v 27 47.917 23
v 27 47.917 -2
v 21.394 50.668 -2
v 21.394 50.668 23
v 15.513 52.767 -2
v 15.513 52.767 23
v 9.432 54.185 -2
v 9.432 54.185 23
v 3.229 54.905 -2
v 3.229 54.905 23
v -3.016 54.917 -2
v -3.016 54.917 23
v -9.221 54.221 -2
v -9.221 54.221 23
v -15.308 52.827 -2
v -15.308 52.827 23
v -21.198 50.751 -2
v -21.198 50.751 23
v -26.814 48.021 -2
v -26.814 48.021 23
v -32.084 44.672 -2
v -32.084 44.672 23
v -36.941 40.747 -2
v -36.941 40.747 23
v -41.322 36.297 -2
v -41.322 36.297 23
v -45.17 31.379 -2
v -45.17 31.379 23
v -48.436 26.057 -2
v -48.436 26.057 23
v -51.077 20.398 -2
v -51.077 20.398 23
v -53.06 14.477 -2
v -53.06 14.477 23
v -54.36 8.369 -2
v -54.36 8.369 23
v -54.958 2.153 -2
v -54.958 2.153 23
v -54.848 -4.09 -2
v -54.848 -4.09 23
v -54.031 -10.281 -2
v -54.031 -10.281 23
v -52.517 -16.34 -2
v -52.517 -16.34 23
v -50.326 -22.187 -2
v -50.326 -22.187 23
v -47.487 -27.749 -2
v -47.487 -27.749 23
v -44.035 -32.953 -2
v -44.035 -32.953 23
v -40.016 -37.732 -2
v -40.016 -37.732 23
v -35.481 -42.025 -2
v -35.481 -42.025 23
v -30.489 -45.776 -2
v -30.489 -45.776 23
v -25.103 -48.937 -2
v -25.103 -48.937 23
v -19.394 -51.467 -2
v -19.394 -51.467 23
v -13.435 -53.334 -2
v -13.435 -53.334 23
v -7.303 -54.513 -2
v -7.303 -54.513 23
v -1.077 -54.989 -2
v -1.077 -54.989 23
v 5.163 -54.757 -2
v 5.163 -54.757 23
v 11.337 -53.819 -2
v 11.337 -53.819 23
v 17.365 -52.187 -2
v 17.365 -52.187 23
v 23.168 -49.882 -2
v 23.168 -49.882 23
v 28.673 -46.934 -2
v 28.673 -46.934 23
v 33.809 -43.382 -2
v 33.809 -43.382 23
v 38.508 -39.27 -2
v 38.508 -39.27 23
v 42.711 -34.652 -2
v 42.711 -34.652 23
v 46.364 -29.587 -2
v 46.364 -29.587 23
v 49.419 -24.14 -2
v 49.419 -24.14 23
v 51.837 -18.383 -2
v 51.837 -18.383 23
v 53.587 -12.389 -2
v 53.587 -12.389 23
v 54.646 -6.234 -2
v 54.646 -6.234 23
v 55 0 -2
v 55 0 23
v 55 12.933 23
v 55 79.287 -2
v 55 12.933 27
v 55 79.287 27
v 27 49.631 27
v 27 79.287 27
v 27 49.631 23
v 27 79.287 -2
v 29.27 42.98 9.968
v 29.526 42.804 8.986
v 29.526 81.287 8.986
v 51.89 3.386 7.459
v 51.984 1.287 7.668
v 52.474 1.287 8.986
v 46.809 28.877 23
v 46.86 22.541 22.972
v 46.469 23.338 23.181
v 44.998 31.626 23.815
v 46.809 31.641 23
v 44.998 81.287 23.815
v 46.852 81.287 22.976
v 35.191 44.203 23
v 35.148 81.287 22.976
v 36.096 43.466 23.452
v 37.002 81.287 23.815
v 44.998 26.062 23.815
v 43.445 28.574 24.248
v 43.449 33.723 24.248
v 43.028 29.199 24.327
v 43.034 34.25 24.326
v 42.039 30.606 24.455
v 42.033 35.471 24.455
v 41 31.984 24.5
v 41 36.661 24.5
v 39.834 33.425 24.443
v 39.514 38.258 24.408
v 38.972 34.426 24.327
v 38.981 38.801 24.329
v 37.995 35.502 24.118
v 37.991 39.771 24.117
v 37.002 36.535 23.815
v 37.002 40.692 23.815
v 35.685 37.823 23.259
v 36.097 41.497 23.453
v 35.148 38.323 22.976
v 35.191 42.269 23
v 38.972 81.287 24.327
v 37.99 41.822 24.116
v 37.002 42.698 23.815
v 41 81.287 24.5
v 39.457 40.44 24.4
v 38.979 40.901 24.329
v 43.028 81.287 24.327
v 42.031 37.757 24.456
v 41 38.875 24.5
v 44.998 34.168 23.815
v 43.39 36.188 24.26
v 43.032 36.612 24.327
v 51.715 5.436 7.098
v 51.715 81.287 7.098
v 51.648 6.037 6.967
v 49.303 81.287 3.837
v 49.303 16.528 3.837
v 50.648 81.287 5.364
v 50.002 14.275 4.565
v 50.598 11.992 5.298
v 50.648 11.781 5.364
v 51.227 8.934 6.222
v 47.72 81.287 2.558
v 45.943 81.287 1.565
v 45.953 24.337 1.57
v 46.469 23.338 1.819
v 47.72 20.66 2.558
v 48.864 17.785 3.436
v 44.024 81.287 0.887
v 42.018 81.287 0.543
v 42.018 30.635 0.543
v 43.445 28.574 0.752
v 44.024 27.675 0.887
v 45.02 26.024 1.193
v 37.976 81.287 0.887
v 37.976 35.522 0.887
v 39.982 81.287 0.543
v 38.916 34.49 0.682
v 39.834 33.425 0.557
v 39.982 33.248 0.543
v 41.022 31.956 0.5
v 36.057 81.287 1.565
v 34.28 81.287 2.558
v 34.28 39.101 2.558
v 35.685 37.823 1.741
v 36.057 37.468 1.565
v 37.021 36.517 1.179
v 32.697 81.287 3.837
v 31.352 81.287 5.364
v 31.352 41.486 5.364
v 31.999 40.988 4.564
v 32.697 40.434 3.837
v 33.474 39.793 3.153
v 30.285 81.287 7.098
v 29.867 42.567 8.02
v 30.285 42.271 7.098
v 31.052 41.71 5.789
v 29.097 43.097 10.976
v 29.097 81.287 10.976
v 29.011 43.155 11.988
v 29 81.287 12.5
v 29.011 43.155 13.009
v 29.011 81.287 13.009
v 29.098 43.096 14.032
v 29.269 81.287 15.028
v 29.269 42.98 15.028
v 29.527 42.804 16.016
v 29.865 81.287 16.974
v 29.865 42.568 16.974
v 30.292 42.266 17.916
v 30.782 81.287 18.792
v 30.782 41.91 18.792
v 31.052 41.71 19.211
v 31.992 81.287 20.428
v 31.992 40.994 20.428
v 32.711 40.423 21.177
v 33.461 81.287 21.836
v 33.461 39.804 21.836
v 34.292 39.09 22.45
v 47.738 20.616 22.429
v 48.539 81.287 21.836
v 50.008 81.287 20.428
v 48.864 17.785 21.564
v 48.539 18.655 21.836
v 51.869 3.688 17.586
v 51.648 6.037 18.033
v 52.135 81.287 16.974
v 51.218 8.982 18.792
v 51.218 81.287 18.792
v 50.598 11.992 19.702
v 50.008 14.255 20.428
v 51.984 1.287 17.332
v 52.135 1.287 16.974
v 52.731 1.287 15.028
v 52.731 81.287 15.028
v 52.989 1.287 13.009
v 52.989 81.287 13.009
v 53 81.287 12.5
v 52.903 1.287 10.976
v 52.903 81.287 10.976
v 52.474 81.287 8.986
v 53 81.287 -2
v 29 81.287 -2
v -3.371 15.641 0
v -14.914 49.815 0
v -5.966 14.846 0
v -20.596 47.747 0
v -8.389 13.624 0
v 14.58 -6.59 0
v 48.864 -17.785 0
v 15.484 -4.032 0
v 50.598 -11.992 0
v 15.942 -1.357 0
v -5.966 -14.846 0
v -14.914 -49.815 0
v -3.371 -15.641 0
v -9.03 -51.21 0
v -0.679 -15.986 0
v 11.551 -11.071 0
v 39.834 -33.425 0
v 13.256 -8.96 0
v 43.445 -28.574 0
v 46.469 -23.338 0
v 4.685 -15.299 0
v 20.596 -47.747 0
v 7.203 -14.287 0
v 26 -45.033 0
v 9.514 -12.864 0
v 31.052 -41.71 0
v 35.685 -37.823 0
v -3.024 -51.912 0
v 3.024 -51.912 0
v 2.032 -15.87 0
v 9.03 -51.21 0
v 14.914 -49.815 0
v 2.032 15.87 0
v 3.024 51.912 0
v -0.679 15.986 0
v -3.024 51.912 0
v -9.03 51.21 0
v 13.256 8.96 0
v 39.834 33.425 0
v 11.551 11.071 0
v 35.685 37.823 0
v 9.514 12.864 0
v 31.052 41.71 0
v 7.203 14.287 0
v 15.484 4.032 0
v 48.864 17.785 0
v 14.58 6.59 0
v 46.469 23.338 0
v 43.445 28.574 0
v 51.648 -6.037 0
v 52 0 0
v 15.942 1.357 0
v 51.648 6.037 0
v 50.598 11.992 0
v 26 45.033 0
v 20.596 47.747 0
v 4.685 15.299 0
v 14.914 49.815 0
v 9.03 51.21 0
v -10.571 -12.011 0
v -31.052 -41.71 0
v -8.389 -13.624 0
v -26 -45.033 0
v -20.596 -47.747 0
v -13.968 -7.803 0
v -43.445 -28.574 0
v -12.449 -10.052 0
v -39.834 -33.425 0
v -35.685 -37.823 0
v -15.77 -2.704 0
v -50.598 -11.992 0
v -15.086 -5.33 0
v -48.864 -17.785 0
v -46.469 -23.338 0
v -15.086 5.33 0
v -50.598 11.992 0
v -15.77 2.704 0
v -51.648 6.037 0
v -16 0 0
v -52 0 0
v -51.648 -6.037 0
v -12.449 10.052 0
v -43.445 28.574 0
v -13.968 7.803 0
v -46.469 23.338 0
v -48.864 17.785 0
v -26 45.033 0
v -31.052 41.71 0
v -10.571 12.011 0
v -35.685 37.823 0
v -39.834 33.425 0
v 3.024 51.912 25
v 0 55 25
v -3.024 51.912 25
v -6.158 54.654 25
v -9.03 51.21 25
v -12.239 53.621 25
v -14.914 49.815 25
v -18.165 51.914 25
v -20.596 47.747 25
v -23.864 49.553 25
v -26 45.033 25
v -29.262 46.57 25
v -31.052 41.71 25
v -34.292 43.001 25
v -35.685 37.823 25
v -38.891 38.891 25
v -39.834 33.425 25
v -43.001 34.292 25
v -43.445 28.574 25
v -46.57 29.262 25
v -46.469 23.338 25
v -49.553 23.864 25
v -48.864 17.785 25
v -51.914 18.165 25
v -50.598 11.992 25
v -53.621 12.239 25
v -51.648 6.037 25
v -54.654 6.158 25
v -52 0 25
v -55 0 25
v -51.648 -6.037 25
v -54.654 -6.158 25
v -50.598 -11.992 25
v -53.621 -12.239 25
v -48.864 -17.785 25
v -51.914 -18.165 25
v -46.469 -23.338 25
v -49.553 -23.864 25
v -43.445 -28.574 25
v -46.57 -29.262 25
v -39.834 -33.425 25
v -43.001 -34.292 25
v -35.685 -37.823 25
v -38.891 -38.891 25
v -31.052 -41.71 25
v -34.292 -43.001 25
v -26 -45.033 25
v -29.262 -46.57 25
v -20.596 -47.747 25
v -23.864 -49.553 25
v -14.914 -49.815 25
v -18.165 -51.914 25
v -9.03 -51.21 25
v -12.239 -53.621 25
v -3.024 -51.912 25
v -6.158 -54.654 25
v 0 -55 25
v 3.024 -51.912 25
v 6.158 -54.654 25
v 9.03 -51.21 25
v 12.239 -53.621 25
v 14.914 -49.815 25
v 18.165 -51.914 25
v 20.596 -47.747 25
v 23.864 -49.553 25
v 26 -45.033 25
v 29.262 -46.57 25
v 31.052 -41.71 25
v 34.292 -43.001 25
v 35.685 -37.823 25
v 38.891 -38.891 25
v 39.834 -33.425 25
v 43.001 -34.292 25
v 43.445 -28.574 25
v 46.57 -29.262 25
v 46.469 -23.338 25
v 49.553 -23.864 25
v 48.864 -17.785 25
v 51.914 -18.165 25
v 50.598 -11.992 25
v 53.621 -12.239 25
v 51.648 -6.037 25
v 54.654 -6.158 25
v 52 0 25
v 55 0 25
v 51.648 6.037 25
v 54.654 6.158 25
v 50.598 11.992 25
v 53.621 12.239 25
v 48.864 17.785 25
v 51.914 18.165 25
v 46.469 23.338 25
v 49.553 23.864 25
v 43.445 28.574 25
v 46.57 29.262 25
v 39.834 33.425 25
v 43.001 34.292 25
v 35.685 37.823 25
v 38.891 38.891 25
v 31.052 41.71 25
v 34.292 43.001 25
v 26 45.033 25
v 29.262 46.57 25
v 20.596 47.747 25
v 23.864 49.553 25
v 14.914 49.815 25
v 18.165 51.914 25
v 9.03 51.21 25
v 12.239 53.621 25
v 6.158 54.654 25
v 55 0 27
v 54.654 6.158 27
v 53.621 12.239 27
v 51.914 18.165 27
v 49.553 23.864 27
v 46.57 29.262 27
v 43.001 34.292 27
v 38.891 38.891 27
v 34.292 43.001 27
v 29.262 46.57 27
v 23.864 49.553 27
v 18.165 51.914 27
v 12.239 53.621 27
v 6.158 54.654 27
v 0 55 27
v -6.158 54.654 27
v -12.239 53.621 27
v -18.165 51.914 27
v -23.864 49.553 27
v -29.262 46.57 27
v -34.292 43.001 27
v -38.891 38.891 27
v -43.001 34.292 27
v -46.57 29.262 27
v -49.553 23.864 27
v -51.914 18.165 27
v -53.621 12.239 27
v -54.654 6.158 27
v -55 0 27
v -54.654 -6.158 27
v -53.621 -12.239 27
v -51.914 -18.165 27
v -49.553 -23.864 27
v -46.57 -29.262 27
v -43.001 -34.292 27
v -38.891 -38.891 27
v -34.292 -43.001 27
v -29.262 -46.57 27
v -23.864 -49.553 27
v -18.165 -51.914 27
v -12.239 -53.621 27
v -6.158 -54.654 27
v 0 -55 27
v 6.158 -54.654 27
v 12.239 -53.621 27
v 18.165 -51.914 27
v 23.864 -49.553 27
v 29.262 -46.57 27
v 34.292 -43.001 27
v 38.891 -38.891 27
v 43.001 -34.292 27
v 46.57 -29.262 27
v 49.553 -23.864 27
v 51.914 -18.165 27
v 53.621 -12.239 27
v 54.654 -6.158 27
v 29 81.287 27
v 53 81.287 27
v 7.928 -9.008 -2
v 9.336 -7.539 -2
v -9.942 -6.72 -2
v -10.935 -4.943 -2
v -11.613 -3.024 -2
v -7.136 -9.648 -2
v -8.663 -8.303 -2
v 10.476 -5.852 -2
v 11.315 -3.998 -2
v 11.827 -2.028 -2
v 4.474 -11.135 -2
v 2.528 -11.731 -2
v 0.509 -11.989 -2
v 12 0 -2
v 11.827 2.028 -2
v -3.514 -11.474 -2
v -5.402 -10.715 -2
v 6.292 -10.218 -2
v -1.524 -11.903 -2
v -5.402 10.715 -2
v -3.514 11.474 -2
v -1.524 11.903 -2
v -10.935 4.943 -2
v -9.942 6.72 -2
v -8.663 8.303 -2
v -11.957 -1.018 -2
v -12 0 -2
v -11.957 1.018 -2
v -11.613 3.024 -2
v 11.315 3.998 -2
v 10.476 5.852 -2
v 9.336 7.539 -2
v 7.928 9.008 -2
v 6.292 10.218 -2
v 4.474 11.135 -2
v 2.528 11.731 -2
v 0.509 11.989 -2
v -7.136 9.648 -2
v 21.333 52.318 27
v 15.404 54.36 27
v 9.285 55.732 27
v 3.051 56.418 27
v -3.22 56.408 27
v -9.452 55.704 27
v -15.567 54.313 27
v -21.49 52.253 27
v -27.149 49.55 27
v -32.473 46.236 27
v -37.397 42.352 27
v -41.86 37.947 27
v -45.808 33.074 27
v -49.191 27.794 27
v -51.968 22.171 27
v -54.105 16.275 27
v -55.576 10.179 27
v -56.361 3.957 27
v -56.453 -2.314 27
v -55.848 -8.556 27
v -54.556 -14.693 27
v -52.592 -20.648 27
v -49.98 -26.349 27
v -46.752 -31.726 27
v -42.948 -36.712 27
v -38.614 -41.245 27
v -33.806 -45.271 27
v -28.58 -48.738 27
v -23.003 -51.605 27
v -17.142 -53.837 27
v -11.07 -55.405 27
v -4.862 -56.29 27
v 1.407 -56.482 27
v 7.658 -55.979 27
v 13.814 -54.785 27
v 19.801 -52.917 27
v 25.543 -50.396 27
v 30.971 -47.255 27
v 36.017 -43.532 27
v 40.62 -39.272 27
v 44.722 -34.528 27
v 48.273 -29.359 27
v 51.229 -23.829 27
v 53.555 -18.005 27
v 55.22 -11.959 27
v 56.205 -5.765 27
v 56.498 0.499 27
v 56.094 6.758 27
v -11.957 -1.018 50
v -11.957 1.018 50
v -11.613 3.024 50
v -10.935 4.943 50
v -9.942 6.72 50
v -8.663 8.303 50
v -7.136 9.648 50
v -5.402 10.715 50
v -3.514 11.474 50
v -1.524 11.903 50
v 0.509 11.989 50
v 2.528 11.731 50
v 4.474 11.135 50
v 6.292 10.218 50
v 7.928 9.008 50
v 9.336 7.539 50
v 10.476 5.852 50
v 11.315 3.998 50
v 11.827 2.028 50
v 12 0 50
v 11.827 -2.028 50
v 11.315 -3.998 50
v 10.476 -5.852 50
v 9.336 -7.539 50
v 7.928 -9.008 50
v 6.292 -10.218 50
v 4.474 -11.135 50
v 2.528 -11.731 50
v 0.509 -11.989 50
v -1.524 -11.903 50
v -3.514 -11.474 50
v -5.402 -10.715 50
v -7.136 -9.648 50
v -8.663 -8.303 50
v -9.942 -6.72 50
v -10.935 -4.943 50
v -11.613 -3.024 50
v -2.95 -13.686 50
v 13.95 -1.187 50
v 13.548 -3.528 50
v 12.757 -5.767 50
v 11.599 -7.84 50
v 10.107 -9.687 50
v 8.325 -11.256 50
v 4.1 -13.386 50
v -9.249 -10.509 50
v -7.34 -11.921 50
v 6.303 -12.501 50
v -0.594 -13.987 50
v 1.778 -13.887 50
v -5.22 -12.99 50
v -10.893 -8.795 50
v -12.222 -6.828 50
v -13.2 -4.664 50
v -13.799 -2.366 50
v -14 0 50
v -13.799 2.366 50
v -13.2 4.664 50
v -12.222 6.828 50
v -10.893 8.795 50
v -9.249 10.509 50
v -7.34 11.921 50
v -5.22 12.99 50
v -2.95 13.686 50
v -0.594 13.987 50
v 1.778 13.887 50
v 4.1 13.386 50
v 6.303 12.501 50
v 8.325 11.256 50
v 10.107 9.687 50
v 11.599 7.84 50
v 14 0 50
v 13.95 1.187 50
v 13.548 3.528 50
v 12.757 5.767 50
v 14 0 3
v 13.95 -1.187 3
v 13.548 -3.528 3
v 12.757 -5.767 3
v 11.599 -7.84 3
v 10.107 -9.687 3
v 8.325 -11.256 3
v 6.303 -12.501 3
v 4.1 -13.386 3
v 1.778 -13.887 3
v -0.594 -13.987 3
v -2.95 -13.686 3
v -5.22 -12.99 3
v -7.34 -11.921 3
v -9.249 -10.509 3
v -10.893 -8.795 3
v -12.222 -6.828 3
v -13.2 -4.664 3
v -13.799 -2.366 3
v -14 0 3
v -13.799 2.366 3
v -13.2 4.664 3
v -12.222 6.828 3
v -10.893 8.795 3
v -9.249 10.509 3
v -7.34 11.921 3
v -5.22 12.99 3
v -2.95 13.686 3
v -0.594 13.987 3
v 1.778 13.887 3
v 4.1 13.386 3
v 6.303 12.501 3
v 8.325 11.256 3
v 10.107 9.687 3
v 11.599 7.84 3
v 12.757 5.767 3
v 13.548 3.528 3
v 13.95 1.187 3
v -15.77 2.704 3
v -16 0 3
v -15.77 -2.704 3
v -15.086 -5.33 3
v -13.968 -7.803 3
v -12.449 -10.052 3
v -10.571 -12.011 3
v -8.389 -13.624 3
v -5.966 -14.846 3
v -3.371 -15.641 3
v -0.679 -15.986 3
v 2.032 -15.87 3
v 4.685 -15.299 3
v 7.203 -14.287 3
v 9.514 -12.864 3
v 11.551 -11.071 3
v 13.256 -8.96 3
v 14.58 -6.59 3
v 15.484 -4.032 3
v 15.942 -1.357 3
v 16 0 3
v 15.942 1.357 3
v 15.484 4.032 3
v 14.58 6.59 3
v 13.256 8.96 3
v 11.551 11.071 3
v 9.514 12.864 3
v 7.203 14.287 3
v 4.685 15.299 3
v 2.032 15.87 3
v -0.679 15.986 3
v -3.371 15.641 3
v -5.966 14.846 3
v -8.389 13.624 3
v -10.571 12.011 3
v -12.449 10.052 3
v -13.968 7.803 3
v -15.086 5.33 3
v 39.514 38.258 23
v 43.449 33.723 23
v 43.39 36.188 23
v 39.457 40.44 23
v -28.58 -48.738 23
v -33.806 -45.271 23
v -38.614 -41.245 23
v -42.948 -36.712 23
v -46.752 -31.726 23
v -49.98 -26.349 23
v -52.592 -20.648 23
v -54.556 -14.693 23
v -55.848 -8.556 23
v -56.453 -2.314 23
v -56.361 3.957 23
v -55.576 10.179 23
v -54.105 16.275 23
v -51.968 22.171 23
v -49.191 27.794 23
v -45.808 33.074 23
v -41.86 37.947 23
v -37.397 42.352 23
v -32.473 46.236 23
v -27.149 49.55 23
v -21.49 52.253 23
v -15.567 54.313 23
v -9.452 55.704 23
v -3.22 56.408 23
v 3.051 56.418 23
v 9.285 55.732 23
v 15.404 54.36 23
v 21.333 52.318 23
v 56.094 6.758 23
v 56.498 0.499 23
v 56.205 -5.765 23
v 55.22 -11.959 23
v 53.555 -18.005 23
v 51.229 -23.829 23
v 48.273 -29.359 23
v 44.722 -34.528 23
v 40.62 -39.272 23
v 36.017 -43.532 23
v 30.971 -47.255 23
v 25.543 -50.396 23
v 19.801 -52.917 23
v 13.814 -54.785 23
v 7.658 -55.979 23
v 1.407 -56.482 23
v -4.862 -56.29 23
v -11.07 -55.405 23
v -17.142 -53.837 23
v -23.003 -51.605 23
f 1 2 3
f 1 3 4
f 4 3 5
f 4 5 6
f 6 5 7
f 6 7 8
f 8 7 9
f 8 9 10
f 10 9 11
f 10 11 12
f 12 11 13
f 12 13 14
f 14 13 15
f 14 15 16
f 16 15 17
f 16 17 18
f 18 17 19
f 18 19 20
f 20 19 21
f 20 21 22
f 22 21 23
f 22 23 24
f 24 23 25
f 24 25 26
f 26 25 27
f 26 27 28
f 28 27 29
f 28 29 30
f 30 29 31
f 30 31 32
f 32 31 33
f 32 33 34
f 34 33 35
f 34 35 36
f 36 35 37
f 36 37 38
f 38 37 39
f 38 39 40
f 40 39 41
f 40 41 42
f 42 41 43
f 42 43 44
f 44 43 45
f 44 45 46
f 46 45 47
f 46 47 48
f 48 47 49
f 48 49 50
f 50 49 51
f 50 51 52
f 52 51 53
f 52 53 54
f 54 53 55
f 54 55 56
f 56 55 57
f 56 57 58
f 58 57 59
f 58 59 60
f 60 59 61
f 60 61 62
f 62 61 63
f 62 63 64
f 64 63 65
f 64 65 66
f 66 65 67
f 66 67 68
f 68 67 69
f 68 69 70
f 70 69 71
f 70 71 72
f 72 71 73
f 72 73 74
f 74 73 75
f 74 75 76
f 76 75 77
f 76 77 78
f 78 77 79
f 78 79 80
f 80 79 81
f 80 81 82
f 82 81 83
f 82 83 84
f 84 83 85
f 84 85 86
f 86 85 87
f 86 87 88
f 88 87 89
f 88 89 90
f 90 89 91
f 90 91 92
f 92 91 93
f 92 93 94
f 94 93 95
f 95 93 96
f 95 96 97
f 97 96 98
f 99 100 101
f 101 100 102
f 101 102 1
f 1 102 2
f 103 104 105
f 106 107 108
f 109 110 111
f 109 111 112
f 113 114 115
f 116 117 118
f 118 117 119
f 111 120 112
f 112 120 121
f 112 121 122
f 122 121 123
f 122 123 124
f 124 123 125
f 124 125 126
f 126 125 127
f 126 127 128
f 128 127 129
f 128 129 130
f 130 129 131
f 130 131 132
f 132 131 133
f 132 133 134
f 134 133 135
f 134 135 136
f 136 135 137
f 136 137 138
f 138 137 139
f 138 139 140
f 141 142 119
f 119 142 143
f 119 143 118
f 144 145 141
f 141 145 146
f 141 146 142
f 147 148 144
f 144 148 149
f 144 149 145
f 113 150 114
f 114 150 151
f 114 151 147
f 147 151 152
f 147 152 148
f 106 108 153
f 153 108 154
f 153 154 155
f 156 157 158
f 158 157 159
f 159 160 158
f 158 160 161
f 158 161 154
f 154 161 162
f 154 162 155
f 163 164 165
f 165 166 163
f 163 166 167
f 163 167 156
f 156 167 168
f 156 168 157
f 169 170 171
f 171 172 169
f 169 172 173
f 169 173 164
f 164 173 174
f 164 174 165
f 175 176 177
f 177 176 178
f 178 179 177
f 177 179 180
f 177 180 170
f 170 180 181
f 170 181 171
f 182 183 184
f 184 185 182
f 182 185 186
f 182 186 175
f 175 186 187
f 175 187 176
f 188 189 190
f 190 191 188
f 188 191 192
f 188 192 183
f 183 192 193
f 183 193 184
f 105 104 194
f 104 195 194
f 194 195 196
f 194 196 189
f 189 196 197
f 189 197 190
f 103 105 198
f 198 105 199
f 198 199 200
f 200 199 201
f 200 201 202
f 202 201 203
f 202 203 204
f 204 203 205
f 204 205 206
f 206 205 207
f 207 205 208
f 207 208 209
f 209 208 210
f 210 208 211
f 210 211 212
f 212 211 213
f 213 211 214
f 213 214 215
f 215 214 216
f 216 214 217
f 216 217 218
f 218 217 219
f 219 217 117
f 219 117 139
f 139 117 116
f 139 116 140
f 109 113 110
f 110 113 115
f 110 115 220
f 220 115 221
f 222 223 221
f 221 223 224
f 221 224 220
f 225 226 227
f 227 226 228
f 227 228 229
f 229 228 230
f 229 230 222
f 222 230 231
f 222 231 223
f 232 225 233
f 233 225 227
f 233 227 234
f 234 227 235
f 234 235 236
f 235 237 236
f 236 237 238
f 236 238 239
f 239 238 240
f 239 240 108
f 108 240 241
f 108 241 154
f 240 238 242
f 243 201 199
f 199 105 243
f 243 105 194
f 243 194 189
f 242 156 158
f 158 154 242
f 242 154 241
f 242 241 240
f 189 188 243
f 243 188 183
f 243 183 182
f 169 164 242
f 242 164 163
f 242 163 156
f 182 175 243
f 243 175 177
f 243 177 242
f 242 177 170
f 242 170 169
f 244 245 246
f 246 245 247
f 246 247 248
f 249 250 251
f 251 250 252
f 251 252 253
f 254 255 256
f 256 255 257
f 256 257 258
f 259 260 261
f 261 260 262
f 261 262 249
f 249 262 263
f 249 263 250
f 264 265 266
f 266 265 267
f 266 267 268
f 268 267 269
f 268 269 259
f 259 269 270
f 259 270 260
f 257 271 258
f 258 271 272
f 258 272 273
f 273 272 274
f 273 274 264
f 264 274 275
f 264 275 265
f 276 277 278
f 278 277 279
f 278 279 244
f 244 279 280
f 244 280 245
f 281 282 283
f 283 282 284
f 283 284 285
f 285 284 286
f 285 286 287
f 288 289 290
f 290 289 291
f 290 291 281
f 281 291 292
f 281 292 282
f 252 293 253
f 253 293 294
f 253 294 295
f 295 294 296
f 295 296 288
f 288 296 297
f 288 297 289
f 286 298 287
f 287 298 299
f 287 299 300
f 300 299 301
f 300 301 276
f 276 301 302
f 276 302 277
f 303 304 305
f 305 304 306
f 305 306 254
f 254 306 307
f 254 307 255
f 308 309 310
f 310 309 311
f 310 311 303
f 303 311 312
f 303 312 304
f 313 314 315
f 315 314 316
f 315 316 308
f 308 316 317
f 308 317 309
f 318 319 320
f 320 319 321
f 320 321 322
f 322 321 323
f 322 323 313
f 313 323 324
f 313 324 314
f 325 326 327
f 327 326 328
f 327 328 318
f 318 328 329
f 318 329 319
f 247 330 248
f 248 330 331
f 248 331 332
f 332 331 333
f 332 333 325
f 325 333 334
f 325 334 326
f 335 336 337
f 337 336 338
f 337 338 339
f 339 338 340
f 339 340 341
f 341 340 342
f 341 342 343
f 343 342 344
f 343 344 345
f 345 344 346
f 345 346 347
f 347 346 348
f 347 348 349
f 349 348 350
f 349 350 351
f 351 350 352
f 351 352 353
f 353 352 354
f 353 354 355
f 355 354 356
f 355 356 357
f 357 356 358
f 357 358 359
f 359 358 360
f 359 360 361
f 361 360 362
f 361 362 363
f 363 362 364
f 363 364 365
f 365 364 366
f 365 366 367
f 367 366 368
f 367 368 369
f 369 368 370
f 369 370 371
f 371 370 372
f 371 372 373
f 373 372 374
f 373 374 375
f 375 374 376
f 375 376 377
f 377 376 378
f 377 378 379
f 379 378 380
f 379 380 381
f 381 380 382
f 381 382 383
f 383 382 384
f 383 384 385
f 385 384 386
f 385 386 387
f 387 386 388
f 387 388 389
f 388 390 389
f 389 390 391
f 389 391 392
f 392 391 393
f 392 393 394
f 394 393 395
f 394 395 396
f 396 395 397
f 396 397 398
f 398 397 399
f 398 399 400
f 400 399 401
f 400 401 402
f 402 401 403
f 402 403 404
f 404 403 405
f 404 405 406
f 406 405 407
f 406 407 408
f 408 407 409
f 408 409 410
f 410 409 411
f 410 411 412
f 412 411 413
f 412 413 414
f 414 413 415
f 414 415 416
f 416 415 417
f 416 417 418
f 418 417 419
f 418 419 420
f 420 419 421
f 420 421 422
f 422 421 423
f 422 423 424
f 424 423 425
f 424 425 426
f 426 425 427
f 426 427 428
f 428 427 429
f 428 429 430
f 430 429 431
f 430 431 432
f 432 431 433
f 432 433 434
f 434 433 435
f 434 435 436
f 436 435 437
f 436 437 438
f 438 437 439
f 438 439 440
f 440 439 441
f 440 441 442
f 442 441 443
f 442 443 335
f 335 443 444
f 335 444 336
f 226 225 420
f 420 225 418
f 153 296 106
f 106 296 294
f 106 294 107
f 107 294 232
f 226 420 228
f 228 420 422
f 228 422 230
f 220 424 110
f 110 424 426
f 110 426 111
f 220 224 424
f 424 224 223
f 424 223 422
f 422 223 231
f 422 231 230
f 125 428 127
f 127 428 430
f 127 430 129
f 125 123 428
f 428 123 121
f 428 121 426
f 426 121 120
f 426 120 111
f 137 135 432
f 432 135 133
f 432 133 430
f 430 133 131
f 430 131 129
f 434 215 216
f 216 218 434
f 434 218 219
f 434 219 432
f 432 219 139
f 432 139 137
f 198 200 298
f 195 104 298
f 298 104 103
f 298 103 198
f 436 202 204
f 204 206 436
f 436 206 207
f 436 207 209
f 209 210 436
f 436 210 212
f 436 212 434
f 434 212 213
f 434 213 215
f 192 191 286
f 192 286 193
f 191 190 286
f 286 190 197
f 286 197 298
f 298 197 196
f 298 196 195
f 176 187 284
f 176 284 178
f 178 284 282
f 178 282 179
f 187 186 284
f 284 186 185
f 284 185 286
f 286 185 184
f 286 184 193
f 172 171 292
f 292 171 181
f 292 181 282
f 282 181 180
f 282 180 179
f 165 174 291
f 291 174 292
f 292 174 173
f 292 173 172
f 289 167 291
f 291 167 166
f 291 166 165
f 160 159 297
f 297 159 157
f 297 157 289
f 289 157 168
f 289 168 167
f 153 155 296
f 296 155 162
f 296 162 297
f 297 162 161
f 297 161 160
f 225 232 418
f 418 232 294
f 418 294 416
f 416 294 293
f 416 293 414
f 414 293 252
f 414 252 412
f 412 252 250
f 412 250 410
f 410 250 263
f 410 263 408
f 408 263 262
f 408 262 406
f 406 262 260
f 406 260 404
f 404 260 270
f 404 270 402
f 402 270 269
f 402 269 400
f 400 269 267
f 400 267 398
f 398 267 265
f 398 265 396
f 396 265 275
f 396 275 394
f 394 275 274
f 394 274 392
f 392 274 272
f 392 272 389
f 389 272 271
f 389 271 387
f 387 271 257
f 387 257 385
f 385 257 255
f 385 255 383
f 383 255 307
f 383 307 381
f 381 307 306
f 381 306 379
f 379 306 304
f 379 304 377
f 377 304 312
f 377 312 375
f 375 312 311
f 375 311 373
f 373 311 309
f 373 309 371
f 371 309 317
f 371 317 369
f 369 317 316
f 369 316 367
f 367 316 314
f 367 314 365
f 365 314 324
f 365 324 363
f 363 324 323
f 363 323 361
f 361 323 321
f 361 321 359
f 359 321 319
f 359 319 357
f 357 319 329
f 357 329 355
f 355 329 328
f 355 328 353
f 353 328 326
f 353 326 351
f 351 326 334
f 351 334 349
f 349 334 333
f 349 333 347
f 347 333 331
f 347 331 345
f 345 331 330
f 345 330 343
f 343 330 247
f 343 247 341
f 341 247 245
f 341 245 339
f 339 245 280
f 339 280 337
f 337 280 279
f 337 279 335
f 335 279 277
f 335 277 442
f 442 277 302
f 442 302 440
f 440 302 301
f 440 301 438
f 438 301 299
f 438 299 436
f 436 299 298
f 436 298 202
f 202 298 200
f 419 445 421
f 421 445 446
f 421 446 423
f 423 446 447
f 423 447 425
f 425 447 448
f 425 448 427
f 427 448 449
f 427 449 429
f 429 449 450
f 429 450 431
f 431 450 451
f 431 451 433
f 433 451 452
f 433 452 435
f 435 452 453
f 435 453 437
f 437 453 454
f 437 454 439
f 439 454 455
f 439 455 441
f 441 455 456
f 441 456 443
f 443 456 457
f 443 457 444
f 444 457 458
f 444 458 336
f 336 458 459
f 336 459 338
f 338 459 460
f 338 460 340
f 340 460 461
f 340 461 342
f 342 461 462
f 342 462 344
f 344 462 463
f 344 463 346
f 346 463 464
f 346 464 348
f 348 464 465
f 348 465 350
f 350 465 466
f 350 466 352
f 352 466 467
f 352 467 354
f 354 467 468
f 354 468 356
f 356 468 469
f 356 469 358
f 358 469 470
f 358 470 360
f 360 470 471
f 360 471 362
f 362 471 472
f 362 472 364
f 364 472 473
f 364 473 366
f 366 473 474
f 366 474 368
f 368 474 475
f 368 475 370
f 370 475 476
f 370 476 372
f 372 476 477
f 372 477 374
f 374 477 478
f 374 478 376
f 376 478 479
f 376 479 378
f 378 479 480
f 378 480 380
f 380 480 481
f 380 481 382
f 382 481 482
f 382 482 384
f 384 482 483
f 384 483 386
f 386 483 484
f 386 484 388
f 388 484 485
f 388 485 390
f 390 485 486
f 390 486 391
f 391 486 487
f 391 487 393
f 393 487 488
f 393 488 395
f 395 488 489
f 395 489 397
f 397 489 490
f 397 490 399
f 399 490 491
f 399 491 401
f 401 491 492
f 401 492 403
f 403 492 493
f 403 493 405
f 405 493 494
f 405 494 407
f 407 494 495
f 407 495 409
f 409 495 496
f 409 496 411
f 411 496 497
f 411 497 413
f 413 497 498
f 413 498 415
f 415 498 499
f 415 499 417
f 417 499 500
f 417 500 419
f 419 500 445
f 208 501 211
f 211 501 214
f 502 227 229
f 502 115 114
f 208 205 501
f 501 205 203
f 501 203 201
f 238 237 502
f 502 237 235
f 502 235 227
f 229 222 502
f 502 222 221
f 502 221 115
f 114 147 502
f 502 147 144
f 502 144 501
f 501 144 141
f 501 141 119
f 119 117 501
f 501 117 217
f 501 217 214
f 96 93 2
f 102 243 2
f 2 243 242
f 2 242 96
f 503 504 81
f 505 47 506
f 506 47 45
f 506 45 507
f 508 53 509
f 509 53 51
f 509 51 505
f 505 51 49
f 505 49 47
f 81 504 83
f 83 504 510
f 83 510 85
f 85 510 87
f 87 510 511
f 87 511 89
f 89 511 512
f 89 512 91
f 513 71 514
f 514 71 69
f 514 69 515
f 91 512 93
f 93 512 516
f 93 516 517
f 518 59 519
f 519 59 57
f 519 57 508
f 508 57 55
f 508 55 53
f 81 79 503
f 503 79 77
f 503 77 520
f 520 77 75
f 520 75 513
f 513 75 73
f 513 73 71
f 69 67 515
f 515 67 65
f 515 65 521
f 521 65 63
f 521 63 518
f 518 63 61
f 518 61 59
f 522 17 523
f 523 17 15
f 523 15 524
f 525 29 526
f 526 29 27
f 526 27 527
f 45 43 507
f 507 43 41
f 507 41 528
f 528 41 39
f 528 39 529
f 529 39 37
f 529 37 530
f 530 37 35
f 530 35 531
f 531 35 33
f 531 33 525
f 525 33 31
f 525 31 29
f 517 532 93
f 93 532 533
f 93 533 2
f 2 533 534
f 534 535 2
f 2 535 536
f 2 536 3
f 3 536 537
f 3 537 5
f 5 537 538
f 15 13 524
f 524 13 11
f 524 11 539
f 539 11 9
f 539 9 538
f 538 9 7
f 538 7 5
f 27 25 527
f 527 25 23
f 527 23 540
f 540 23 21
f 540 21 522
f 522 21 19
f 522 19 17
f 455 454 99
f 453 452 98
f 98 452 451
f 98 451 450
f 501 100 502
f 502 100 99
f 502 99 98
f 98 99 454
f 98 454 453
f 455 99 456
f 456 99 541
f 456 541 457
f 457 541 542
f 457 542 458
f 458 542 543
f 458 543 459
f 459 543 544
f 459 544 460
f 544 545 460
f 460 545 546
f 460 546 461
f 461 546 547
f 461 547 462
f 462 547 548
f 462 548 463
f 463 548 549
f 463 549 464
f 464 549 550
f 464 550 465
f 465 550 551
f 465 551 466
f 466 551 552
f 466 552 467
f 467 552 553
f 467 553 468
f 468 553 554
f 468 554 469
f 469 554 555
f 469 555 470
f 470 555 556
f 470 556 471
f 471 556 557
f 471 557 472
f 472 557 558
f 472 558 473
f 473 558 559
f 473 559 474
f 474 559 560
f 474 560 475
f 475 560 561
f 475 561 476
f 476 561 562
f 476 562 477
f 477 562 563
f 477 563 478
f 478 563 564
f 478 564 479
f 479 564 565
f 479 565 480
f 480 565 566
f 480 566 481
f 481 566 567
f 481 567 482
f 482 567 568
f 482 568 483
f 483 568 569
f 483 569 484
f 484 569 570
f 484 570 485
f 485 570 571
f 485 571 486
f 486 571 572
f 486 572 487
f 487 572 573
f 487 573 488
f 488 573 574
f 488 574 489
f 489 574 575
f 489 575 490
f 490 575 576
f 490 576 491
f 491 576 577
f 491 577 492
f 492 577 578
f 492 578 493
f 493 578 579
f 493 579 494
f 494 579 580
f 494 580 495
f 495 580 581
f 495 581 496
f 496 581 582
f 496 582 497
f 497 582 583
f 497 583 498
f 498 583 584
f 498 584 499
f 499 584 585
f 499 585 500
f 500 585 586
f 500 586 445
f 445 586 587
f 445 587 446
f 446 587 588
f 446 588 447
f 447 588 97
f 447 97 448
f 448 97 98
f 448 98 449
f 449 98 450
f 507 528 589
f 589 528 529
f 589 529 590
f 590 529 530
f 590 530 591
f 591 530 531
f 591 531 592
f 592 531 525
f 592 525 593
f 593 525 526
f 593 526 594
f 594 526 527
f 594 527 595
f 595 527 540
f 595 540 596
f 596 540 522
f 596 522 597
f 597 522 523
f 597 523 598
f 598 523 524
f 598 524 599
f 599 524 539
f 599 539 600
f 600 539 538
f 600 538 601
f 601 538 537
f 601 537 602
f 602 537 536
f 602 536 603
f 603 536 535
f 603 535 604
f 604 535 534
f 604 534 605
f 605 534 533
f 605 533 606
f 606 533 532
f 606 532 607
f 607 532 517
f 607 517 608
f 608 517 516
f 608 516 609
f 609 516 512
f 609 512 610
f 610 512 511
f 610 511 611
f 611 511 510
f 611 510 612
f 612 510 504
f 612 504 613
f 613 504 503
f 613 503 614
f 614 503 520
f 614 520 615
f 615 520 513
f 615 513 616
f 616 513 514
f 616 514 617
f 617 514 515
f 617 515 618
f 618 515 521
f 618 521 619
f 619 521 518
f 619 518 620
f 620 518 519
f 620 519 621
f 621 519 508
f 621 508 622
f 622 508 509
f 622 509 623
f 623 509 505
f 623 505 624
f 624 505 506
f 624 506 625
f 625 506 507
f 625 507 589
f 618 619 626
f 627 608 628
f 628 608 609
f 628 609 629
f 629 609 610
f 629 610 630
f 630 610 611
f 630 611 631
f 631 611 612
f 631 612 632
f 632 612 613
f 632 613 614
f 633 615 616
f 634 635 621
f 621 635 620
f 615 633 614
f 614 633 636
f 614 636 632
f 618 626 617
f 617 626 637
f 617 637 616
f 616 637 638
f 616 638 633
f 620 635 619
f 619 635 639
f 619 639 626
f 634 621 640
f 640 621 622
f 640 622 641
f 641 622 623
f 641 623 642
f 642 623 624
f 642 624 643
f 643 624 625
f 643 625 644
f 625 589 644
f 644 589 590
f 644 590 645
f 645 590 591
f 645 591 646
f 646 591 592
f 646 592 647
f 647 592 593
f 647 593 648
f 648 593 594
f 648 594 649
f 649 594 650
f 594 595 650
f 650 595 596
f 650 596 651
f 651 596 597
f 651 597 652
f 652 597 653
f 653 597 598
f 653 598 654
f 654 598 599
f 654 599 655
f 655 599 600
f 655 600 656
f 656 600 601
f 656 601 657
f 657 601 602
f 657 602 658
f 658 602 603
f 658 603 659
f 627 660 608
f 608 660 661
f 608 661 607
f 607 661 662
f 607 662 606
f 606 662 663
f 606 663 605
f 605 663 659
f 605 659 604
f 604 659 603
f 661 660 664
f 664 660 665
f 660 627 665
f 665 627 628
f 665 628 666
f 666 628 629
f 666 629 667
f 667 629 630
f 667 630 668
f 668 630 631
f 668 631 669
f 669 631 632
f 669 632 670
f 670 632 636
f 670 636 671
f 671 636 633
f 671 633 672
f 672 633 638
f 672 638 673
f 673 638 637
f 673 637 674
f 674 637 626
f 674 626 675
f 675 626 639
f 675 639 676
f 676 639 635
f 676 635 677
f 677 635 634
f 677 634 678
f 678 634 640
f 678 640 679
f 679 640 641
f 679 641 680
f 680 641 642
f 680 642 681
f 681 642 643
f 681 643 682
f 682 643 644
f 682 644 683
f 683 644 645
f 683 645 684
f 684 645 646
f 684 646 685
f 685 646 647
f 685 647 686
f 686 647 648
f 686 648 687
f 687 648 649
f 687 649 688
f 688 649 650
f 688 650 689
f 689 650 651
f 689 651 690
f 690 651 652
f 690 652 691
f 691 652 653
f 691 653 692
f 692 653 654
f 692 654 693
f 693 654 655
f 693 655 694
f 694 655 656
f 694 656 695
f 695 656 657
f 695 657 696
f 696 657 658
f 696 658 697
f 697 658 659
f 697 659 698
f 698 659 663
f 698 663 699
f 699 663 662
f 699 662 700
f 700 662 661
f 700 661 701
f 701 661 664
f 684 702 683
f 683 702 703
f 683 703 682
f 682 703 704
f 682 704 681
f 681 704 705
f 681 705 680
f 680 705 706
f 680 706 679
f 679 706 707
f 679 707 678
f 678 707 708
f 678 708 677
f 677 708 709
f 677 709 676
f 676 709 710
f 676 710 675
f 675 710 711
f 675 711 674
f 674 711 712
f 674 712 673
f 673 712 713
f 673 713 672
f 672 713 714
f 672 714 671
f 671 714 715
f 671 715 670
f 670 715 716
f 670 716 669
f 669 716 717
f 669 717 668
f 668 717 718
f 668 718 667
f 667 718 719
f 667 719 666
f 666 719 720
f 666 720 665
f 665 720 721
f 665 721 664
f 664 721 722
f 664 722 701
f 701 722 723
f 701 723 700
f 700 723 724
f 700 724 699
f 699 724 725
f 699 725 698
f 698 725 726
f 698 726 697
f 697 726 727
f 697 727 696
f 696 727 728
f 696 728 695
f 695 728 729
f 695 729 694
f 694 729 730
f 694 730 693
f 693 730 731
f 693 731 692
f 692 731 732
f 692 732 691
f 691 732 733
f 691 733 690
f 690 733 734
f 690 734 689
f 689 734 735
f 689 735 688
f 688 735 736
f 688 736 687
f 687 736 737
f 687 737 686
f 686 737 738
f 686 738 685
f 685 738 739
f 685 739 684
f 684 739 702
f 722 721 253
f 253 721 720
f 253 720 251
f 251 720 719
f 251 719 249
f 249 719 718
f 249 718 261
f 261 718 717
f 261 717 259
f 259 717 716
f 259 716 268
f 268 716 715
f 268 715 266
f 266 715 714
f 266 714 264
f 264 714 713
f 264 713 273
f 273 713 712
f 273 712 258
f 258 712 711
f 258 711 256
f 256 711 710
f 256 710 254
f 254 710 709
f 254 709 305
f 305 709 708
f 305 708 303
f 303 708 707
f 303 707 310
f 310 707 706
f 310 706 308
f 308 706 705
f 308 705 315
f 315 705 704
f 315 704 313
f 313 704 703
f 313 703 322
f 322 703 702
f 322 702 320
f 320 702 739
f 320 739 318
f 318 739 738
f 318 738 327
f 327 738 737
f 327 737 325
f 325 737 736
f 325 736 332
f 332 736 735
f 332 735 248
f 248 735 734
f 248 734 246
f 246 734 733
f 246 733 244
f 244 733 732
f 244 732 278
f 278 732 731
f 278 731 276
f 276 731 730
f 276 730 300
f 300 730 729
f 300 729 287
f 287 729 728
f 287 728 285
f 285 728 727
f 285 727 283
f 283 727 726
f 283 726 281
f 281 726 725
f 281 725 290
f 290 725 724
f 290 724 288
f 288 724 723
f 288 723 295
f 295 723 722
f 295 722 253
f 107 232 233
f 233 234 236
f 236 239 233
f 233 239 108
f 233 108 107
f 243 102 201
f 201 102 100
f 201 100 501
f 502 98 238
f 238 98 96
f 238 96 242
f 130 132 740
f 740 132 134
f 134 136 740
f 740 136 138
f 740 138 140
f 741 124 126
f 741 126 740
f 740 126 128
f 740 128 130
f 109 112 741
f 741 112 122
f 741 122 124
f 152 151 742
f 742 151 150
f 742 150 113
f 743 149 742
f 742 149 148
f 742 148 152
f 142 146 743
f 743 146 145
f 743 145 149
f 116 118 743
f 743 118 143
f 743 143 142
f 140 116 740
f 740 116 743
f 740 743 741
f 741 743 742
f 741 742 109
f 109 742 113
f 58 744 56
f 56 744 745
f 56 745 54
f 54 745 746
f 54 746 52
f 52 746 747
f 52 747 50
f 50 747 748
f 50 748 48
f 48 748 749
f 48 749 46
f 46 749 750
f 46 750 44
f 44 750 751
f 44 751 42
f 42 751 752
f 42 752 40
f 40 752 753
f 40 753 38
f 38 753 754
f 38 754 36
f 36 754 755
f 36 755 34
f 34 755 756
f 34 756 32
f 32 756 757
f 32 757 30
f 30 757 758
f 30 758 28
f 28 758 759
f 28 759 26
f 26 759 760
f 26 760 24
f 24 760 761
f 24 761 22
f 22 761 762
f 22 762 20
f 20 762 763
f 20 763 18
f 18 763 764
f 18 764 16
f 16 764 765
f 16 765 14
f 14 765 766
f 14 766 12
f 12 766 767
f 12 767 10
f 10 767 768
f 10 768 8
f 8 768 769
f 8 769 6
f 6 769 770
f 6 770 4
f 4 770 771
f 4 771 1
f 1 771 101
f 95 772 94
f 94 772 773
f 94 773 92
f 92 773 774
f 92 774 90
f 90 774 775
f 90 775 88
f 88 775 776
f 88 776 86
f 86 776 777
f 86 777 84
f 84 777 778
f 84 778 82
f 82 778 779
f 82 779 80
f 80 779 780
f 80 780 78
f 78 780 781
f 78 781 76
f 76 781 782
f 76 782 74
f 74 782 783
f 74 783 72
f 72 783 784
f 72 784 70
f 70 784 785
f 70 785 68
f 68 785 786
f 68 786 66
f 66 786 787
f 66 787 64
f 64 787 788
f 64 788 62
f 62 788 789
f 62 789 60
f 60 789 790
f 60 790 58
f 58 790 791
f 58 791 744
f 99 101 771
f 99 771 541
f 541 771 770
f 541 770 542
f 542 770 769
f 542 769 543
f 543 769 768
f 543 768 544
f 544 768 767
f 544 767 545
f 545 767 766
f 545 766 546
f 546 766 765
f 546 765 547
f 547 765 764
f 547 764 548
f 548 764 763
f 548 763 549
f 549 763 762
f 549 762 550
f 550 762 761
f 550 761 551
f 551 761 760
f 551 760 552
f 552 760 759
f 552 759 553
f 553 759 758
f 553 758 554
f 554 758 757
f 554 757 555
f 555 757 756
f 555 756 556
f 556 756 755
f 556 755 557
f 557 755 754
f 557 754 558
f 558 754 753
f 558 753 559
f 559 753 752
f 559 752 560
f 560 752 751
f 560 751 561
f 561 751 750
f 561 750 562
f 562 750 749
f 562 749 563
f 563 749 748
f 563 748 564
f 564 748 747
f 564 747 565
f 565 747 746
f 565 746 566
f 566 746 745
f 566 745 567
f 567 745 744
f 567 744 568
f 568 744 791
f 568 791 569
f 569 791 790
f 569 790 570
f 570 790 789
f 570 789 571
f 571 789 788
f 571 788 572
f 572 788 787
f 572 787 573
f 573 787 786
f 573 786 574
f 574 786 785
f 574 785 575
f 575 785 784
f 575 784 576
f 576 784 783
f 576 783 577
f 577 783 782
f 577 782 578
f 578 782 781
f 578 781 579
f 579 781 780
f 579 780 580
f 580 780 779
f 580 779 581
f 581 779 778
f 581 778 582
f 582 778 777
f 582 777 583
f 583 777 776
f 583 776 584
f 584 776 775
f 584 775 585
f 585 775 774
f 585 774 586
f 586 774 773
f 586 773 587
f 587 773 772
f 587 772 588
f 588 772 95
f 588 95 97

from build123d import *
from build123d.topology import SkipClean

# Parameters (mm, degrees)
SKETCH1_R           = 55
SKETCH1_R_2         = 52
BOSS_EXTRUDE1_DEPTH = 25
BOSS_EXTRUDE2_START = -27
BOSS_EXTRUDE2_DEPTH = 29
BOSS_EXTRUDE3_START = 2
SKETCH5_R           = 55
SKETCH5_R_2         = 12
BOSS_EXTRUDE3_DEPTH = 2
SKETCH6_R           = 14
SKETCH6_R_2         = 12.000000000000002
BOSS_EXTRUDE4_DEPTH = 50
SKETCH7_R           = 16
SKETCH7_R_2         = 14.000000000000002
BOSS_EXTRUDE5_DEPTH = 3
BOSS_EXTRUDE6_START = -2
SKETCH8_R           = 55
SKETCH8_R_2         = 52
BOSS_EXTRUDE6_DEPTH = 2
SKETCH9_R           = 11.999999999999996
CUT_EXTRUDE1_DEPTH  = 80.00000000000001
CHAMFER1_SIZE       = 2
BOSS_EXTRUDE8_START = -2
SKETCH11_R          = 56.5
SKETCH11_R_2        = 54.99999999999999
BOSS_EXTRUDE8_DEPTH = 4


with BuildPart() as part:
    # Sketch1 → Boss-Extrude1 (new body)
    with BuildSketch(Plane.XY):
        Circle(SKETCH1_R)
        Circle(SKETCH1_R_2, mode=Mode.SUBTRACT)
    extrude(amount=BOSS_EXTRUDE1_DEPTH)

    # Sketch2 → Boss-Extrude2 (add)
    with BuildSketch(Plane.XY.offset(25).offset(BOSS_EXTRUDE2_START)):
        with BuildLine():
            Line((27, 81.28713256522299), (27, 47.91659420284375))
            ThreePointArc((27, 47.91659420284375), (47.486840282335066, 27.74887385102322), (55, 0))
            Line((55, 0), (55, 81.28713256522299))
            Line((55, 81.28713256522299), (27, 81.28713256522299))
        make_face()
    extrude(amount=BOSS_EXTRUDE2_DEPTH)

    # Sketch5 → Boss-Extrude3 (add)
    with BuildSketch(Plane(origin=(0, 0, 0), x_dir=(-1, 0, 0), z_dir=(0, 0, -1)).offset(BOSS_EXTRUDE3_START)):
        Circle(SKETCH5_R)
        Circle(SKETCH5_R_2, mode=Mode.SUBTRACT)
    extrude(amount=-BOSS_EXTRUDE3_DEPTH)

    # Sketch6 → Boss-Extrude4 (add)
    with BuildSketch(Plane.XY):
        with Locations(Location((0, 0, 0), (0, 0, 180))):
            Circle(SKETCH6_R)
        Circle(SKETCH6_R_2, mode=Mode.SUBTRACT)
    extrude(amount=BOSS_EXTRUDE4_DEPTH)

    # Sketch7 → Boss-Extrude5 (add)
    with BuildSketch(Plane.XY):
        with Locations(Location((0, 0, 0), (0, 0, 180))):
            Circle(SKETCH7_R)
        Circle(SKETCH7_R_2, mode=Mode.SUBTRACT)
    extrude(amount=BOSS_EXTRUDE5_DEPTH)

    # Sketch8 → Boss-Extrude6 (add)
    with BuildSketch(Plane.XY.offset(25).offset(BOSS_EXTRUDE6_START)):
        Circle(SKETCH8_R)
        Circle(SKETCH8_R_2, mode=Mode.SUBTRACT)
    extrude(amount=BOSS_EXTRUDE6_DEPTH)

    # Sketch9 → Cut-Extrude1 (cut)
    with BuildSketch(Plane(origin=(0, 81.28713256522299, 0), x_dir=(1, 0, 0), z_dir=(0, 1, 0))):
        with Locations(Location((41, -12.5, 0), (0, 0, 270))):
            Circle(SKETCH9_R)
    extrude(amount=-CUT_EXTRUDE1_DEPTH, mode=Mode.SUBTRACT)

    # Chamfer1
    chamfer1_edges = [part.edges().sort_by_distance(p)[0] for p in [
        (55, 81.28713256522299, 12.5),
        (27, 81.28713256522299, 12.5),
    ]]
    chamfer(chamfer1_edges, length=CHAMFER1_SIZE)

    # Sketch11 → Boss-Extrude8 (add)
    with SkipClean():  # the faces are left unmerged after this step: merging them gives an invalid solid
        with BuildSketch(Plane.XY.offset(25).offset(BOSS_EXTRUDE8_START)):
            Circle(SKETCH11_R)
            Circle(SKETCH11_R_2, mode=Mode.SUBTRACT)
        extrude(amount=BOSS_EXTRUDE8_DEPTH)


solid = part.part
